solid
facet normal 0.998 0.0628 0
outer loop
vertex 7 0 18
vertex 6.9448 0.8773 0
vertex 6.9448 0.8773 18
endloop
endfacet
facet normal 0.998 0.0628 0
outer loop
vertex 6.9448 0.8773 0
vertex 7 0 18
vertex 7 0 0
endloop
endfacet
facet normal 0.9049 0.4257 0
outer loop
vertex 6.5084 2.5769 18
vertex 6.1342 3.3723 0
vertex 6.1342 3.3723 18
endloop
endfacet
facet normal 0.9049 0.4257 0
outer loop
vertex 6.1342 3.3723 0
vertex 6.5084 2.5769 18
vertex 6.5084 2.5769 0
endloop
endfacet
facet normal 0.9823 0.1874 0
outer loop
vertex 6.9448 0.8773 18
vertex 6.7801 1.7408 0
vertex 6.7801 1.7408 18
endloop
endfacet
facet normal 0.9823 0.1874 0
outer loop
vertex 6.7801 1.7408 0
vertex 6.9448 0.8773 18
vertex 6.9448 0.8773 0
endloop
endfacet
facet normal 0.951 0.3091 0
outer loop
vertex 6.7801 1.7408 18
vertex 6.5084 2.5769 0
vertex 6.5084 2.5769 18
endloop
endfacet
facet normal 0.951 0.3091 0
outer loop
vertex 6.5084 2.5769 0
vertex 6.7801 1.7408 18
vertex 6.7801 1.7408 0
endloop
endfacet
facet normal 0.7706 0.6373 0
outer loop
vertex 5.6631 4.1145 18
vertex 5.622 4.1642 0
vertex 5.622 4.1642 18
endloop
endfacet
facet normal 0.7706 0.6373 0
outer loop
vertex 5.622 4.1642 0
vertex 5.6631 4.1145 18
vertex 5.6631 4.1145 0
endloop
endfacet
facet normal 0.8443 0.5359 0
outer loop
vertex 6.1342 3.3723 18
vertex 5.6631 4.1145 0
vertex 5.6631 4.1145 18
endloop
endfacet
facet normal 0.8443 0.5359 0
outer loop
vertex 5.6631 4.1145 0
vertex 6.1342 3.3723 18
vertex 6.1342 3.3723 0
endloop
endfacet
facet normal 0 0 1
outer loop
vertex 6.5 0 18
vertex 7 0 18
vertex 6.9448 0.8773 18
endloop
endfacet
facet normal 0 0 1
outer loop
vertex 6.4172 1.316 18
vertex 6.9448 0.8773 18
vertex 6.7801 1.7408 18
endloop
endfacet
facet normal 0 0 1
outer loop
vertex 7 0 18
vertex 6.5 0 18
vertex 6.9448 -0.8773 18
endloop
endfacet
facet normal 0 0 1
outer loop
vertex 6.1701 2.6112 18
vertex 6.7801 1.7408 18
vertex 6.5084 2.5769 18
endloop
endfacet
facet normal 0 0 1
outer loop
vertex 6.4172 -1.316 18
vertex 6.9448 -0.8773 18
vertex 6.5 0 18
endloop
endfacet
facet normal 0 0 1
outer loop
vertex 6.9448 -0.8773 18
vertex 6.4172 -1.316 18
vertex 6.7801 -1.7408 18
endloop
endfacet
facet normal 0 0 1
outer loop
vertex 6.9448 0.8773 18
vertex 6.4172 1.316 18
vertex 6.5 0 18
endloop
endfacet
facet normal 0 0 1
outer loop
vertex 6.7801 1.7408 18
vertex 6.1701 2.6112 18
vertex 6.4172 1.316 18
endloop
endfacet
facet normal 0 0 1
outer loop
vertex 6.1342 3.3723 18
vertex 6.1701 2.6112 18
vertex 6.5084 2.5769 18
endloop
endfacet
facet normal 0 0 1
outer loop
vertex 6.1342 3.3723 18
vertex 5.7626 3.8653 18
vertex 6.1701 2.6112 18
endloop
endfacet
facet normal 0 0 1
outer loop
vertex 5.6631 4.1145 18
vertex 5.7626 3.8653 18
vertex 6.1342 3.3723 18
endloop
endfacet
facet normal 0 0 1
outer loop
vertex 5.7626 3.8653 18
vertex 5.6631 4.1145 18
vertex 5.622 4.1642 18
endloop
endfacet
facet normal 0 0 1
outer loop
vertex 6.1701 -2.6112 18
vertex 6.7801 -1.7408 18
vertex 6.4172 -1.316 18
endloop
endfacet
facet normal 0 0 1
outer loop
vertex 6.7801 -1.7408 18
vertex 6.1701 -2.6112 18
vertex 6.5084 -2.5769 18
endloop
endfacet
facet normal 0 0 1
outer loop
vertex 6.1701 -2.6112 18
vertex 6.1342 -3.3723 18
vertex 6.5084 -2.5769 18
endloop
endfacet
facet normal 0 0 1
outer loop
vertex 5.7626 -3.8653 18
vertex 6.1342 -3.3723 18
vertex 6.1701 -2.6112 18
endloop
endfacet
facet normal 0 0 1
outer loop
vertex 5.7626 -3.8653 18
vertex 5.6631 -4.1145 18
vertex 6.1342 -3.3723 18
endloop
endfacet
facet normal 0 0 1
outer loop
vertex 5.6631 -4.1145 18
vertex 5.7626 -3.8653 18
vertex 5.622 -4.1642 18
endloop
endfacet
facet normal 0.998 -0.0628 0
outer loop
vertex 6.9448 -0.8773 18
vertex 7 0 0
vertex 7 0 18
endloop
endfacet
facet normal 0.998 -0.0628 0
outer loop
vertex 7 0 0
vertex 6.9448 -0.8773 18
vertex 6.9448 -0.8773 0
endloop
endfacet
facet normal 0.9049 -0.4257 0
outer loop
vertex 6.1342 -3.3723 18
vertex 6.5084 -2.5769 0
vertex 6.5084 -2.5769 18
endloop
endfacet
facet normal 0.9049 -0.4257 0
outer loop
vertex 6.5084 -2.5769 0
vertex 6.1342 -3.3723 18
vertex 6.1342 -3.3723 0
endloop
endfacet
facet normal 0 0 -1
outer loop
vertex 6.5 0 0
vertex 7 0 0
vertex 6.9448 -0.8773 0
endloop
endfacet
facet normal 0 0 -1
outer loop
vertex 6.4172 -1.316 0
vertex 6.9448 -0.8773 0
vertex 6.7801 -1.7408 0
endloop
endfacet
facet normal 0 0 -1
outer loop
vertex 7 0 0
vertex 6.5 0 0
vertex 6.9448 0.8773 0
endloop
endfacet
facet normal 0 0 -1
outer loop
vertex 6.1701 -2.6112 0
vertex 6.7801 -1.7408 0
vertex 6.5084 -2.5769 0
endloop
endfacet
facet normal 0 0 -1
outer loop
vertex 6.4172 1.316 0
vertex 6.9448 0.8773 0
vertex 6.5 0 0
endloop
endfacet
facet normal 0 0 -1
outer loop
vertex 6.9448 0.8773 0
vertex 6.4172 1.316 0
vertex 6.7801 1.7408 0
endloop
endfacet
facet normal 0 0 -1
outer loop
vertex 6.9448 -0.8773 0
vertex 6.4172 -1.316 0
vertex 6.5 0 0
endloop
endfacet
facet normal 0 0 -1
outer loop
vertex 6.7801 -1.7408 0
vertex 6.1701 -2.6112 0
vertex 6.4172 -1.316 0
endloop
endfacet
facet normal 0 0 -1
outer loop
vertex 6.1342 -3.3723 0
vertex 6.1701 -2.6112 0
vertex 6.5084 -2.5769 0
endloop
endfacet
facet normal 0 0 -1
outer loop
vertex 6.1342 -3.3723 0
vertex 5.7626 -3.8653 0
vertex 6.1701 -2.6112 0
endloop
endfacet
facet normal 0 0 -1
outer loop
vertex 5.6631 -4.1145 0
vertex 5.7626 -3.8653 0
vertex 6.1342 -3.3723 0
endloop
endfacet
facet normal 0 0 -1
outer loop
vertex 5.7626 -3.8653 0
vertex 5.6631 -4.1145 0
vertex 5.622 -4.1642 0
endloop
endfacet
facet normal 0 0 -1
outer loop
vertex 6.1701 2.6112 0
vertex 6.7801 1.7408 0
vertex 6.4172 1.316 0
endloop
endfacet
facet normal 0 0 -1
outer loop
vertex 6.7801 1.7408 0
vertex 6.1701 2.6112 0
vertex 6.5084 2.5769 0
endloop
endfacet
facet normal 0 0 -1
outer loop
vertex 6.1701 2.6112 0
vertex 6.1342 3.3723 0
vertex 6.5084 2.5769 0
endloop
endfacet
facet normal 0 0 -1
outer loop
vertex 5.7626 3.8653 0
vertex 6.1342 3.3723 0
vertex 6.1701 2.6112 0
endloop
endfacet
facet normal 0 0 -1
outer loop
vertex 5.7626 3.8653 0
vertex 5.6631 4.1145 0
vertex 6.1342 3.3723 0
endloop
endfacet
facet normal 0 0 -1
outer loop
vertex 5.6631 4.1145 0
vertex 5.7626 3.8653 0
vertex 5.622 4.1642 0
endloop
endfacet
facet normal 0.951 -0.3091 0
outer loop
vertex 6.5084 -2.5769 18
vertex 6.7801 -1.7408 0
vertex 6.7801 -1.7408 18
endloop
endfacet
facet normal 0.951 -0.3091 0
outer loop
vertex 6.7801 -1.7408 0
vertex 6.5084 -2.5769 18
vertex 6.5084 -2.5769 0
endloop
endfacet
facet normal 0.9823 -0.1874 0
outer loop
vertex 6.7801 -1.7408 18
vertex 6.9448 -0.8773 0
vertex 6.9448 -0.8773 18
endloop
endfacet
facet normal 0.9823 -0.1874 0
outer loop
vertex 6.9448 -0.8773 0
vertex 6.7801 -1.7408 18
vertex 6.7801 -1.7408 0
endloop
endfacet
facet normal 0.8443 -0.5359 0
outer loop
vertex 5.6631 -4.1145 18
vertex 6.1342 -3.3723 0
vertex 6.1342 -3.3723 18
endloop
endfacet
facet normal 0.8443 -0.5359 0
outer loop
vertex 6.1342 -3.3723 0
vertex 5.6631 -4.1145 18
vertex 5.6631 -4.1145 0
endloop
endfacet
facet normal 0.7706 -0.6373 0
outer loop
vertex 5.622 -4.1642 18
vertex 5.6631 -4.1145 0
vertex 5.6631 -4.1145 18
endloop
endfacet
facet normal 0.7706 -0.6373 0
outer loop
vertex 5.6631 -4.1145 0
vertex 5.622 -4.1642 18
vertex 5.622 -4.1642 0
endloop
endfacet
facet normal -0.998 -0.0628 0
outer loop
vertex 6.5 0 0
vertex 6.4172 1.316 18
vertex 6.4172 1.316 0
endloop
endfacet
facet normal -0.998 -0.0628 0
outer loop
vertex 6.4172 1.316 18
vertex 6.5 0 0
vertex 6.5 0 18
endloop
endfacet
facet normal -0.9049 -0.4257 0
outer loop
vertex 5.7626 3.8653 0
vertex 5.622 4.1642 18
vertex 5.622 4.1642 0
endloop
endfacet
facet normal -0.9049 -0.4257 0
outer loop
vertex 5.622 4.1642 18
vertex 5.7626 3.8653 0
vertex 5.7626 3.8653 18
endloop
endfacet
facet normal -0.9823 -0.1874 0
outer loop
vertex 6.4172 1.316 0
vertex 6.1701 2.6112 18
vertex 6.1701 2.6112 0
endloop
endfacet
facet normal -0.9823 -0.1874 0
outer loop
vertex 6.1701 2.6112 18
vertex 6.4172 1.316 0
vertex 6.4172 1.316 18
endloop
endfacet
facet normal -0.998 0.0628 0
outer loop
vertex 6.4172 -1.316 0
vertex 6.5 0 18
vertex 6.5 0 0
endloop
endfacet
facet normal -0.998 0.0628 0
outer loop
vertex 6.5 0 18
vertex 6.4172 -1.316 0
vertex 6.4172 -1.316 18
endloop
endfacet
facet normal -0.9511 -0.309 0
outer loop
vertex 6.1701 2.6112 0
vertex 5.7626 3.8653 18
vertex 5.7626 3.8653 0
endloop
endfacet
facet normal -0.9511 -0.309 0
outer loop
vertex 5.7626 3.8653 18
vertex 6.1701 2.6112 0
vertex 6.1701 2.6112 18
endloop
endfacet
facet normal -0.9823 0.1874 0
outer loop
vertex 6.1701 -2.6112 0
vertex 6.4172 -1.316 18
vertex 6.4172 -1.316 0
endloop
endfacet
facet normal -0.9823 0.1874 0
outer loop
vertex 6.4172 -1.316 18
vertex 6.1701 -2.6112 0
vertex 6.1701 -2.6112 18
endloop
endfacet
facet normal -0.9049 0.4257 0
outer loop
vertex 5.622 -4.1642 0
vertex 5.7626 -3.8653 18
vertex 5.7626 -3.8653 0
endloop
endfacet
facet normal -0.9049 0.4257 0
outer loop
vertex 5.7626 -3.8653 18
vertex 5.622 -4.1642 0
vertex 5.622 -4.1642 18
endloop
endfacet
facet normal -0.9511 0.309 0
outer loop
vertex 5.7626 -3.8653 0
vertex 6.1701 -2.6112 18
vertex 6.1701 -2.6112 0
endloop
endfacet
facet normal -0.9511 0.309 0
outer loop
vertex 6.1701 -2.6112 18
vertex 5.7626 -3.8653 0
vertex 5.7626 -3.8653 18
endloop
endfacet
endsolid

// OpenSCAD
$fn = 50;


difference() {
	union() {
		cylinder(h = 18, r = 7.0000000000);
		translate(v = [-7.0000000000, 0, 0]) {
			cylinder(h = 18, r = 7.0000000000);
		}
	}
	union() {
		cylinder(h = 18, r = 3.2500000000);
		cylinder(h = 18, r = 1.8000000000);
		cylinder(h = 18, r = 1.8000000000);
		cylinder(h = 18, r = 1.8000000000);
		translate(v = [-11.5000000000, 0, 0]) {
			hull() {
				translate(v = [-3.7500000000, 0.0000000000, 0]) {
					cylinder(h = 18, r = 10.5000000000);
				}
				translate(v = [3.7500000000, 0.0000000000, 0]) {
					cylinder(h = 18, r = 10.5000000000);
				}
				translate(v = [-3.7500000000, -0.0000000000, 0]) {
					cylinder(h = 18, r = 10.5000000000);
				}
				translate(v = [3.7500000000, -0.0000000000, 0]) {
					cylinder(h = 18, r = 10.5000000000);
				}
			}
		}
		translate(v = [-4.0000000000, 0, 0.0000000000]) {
			cylinder(h = 18, r = 10.5000000000);
		}
	}
}
